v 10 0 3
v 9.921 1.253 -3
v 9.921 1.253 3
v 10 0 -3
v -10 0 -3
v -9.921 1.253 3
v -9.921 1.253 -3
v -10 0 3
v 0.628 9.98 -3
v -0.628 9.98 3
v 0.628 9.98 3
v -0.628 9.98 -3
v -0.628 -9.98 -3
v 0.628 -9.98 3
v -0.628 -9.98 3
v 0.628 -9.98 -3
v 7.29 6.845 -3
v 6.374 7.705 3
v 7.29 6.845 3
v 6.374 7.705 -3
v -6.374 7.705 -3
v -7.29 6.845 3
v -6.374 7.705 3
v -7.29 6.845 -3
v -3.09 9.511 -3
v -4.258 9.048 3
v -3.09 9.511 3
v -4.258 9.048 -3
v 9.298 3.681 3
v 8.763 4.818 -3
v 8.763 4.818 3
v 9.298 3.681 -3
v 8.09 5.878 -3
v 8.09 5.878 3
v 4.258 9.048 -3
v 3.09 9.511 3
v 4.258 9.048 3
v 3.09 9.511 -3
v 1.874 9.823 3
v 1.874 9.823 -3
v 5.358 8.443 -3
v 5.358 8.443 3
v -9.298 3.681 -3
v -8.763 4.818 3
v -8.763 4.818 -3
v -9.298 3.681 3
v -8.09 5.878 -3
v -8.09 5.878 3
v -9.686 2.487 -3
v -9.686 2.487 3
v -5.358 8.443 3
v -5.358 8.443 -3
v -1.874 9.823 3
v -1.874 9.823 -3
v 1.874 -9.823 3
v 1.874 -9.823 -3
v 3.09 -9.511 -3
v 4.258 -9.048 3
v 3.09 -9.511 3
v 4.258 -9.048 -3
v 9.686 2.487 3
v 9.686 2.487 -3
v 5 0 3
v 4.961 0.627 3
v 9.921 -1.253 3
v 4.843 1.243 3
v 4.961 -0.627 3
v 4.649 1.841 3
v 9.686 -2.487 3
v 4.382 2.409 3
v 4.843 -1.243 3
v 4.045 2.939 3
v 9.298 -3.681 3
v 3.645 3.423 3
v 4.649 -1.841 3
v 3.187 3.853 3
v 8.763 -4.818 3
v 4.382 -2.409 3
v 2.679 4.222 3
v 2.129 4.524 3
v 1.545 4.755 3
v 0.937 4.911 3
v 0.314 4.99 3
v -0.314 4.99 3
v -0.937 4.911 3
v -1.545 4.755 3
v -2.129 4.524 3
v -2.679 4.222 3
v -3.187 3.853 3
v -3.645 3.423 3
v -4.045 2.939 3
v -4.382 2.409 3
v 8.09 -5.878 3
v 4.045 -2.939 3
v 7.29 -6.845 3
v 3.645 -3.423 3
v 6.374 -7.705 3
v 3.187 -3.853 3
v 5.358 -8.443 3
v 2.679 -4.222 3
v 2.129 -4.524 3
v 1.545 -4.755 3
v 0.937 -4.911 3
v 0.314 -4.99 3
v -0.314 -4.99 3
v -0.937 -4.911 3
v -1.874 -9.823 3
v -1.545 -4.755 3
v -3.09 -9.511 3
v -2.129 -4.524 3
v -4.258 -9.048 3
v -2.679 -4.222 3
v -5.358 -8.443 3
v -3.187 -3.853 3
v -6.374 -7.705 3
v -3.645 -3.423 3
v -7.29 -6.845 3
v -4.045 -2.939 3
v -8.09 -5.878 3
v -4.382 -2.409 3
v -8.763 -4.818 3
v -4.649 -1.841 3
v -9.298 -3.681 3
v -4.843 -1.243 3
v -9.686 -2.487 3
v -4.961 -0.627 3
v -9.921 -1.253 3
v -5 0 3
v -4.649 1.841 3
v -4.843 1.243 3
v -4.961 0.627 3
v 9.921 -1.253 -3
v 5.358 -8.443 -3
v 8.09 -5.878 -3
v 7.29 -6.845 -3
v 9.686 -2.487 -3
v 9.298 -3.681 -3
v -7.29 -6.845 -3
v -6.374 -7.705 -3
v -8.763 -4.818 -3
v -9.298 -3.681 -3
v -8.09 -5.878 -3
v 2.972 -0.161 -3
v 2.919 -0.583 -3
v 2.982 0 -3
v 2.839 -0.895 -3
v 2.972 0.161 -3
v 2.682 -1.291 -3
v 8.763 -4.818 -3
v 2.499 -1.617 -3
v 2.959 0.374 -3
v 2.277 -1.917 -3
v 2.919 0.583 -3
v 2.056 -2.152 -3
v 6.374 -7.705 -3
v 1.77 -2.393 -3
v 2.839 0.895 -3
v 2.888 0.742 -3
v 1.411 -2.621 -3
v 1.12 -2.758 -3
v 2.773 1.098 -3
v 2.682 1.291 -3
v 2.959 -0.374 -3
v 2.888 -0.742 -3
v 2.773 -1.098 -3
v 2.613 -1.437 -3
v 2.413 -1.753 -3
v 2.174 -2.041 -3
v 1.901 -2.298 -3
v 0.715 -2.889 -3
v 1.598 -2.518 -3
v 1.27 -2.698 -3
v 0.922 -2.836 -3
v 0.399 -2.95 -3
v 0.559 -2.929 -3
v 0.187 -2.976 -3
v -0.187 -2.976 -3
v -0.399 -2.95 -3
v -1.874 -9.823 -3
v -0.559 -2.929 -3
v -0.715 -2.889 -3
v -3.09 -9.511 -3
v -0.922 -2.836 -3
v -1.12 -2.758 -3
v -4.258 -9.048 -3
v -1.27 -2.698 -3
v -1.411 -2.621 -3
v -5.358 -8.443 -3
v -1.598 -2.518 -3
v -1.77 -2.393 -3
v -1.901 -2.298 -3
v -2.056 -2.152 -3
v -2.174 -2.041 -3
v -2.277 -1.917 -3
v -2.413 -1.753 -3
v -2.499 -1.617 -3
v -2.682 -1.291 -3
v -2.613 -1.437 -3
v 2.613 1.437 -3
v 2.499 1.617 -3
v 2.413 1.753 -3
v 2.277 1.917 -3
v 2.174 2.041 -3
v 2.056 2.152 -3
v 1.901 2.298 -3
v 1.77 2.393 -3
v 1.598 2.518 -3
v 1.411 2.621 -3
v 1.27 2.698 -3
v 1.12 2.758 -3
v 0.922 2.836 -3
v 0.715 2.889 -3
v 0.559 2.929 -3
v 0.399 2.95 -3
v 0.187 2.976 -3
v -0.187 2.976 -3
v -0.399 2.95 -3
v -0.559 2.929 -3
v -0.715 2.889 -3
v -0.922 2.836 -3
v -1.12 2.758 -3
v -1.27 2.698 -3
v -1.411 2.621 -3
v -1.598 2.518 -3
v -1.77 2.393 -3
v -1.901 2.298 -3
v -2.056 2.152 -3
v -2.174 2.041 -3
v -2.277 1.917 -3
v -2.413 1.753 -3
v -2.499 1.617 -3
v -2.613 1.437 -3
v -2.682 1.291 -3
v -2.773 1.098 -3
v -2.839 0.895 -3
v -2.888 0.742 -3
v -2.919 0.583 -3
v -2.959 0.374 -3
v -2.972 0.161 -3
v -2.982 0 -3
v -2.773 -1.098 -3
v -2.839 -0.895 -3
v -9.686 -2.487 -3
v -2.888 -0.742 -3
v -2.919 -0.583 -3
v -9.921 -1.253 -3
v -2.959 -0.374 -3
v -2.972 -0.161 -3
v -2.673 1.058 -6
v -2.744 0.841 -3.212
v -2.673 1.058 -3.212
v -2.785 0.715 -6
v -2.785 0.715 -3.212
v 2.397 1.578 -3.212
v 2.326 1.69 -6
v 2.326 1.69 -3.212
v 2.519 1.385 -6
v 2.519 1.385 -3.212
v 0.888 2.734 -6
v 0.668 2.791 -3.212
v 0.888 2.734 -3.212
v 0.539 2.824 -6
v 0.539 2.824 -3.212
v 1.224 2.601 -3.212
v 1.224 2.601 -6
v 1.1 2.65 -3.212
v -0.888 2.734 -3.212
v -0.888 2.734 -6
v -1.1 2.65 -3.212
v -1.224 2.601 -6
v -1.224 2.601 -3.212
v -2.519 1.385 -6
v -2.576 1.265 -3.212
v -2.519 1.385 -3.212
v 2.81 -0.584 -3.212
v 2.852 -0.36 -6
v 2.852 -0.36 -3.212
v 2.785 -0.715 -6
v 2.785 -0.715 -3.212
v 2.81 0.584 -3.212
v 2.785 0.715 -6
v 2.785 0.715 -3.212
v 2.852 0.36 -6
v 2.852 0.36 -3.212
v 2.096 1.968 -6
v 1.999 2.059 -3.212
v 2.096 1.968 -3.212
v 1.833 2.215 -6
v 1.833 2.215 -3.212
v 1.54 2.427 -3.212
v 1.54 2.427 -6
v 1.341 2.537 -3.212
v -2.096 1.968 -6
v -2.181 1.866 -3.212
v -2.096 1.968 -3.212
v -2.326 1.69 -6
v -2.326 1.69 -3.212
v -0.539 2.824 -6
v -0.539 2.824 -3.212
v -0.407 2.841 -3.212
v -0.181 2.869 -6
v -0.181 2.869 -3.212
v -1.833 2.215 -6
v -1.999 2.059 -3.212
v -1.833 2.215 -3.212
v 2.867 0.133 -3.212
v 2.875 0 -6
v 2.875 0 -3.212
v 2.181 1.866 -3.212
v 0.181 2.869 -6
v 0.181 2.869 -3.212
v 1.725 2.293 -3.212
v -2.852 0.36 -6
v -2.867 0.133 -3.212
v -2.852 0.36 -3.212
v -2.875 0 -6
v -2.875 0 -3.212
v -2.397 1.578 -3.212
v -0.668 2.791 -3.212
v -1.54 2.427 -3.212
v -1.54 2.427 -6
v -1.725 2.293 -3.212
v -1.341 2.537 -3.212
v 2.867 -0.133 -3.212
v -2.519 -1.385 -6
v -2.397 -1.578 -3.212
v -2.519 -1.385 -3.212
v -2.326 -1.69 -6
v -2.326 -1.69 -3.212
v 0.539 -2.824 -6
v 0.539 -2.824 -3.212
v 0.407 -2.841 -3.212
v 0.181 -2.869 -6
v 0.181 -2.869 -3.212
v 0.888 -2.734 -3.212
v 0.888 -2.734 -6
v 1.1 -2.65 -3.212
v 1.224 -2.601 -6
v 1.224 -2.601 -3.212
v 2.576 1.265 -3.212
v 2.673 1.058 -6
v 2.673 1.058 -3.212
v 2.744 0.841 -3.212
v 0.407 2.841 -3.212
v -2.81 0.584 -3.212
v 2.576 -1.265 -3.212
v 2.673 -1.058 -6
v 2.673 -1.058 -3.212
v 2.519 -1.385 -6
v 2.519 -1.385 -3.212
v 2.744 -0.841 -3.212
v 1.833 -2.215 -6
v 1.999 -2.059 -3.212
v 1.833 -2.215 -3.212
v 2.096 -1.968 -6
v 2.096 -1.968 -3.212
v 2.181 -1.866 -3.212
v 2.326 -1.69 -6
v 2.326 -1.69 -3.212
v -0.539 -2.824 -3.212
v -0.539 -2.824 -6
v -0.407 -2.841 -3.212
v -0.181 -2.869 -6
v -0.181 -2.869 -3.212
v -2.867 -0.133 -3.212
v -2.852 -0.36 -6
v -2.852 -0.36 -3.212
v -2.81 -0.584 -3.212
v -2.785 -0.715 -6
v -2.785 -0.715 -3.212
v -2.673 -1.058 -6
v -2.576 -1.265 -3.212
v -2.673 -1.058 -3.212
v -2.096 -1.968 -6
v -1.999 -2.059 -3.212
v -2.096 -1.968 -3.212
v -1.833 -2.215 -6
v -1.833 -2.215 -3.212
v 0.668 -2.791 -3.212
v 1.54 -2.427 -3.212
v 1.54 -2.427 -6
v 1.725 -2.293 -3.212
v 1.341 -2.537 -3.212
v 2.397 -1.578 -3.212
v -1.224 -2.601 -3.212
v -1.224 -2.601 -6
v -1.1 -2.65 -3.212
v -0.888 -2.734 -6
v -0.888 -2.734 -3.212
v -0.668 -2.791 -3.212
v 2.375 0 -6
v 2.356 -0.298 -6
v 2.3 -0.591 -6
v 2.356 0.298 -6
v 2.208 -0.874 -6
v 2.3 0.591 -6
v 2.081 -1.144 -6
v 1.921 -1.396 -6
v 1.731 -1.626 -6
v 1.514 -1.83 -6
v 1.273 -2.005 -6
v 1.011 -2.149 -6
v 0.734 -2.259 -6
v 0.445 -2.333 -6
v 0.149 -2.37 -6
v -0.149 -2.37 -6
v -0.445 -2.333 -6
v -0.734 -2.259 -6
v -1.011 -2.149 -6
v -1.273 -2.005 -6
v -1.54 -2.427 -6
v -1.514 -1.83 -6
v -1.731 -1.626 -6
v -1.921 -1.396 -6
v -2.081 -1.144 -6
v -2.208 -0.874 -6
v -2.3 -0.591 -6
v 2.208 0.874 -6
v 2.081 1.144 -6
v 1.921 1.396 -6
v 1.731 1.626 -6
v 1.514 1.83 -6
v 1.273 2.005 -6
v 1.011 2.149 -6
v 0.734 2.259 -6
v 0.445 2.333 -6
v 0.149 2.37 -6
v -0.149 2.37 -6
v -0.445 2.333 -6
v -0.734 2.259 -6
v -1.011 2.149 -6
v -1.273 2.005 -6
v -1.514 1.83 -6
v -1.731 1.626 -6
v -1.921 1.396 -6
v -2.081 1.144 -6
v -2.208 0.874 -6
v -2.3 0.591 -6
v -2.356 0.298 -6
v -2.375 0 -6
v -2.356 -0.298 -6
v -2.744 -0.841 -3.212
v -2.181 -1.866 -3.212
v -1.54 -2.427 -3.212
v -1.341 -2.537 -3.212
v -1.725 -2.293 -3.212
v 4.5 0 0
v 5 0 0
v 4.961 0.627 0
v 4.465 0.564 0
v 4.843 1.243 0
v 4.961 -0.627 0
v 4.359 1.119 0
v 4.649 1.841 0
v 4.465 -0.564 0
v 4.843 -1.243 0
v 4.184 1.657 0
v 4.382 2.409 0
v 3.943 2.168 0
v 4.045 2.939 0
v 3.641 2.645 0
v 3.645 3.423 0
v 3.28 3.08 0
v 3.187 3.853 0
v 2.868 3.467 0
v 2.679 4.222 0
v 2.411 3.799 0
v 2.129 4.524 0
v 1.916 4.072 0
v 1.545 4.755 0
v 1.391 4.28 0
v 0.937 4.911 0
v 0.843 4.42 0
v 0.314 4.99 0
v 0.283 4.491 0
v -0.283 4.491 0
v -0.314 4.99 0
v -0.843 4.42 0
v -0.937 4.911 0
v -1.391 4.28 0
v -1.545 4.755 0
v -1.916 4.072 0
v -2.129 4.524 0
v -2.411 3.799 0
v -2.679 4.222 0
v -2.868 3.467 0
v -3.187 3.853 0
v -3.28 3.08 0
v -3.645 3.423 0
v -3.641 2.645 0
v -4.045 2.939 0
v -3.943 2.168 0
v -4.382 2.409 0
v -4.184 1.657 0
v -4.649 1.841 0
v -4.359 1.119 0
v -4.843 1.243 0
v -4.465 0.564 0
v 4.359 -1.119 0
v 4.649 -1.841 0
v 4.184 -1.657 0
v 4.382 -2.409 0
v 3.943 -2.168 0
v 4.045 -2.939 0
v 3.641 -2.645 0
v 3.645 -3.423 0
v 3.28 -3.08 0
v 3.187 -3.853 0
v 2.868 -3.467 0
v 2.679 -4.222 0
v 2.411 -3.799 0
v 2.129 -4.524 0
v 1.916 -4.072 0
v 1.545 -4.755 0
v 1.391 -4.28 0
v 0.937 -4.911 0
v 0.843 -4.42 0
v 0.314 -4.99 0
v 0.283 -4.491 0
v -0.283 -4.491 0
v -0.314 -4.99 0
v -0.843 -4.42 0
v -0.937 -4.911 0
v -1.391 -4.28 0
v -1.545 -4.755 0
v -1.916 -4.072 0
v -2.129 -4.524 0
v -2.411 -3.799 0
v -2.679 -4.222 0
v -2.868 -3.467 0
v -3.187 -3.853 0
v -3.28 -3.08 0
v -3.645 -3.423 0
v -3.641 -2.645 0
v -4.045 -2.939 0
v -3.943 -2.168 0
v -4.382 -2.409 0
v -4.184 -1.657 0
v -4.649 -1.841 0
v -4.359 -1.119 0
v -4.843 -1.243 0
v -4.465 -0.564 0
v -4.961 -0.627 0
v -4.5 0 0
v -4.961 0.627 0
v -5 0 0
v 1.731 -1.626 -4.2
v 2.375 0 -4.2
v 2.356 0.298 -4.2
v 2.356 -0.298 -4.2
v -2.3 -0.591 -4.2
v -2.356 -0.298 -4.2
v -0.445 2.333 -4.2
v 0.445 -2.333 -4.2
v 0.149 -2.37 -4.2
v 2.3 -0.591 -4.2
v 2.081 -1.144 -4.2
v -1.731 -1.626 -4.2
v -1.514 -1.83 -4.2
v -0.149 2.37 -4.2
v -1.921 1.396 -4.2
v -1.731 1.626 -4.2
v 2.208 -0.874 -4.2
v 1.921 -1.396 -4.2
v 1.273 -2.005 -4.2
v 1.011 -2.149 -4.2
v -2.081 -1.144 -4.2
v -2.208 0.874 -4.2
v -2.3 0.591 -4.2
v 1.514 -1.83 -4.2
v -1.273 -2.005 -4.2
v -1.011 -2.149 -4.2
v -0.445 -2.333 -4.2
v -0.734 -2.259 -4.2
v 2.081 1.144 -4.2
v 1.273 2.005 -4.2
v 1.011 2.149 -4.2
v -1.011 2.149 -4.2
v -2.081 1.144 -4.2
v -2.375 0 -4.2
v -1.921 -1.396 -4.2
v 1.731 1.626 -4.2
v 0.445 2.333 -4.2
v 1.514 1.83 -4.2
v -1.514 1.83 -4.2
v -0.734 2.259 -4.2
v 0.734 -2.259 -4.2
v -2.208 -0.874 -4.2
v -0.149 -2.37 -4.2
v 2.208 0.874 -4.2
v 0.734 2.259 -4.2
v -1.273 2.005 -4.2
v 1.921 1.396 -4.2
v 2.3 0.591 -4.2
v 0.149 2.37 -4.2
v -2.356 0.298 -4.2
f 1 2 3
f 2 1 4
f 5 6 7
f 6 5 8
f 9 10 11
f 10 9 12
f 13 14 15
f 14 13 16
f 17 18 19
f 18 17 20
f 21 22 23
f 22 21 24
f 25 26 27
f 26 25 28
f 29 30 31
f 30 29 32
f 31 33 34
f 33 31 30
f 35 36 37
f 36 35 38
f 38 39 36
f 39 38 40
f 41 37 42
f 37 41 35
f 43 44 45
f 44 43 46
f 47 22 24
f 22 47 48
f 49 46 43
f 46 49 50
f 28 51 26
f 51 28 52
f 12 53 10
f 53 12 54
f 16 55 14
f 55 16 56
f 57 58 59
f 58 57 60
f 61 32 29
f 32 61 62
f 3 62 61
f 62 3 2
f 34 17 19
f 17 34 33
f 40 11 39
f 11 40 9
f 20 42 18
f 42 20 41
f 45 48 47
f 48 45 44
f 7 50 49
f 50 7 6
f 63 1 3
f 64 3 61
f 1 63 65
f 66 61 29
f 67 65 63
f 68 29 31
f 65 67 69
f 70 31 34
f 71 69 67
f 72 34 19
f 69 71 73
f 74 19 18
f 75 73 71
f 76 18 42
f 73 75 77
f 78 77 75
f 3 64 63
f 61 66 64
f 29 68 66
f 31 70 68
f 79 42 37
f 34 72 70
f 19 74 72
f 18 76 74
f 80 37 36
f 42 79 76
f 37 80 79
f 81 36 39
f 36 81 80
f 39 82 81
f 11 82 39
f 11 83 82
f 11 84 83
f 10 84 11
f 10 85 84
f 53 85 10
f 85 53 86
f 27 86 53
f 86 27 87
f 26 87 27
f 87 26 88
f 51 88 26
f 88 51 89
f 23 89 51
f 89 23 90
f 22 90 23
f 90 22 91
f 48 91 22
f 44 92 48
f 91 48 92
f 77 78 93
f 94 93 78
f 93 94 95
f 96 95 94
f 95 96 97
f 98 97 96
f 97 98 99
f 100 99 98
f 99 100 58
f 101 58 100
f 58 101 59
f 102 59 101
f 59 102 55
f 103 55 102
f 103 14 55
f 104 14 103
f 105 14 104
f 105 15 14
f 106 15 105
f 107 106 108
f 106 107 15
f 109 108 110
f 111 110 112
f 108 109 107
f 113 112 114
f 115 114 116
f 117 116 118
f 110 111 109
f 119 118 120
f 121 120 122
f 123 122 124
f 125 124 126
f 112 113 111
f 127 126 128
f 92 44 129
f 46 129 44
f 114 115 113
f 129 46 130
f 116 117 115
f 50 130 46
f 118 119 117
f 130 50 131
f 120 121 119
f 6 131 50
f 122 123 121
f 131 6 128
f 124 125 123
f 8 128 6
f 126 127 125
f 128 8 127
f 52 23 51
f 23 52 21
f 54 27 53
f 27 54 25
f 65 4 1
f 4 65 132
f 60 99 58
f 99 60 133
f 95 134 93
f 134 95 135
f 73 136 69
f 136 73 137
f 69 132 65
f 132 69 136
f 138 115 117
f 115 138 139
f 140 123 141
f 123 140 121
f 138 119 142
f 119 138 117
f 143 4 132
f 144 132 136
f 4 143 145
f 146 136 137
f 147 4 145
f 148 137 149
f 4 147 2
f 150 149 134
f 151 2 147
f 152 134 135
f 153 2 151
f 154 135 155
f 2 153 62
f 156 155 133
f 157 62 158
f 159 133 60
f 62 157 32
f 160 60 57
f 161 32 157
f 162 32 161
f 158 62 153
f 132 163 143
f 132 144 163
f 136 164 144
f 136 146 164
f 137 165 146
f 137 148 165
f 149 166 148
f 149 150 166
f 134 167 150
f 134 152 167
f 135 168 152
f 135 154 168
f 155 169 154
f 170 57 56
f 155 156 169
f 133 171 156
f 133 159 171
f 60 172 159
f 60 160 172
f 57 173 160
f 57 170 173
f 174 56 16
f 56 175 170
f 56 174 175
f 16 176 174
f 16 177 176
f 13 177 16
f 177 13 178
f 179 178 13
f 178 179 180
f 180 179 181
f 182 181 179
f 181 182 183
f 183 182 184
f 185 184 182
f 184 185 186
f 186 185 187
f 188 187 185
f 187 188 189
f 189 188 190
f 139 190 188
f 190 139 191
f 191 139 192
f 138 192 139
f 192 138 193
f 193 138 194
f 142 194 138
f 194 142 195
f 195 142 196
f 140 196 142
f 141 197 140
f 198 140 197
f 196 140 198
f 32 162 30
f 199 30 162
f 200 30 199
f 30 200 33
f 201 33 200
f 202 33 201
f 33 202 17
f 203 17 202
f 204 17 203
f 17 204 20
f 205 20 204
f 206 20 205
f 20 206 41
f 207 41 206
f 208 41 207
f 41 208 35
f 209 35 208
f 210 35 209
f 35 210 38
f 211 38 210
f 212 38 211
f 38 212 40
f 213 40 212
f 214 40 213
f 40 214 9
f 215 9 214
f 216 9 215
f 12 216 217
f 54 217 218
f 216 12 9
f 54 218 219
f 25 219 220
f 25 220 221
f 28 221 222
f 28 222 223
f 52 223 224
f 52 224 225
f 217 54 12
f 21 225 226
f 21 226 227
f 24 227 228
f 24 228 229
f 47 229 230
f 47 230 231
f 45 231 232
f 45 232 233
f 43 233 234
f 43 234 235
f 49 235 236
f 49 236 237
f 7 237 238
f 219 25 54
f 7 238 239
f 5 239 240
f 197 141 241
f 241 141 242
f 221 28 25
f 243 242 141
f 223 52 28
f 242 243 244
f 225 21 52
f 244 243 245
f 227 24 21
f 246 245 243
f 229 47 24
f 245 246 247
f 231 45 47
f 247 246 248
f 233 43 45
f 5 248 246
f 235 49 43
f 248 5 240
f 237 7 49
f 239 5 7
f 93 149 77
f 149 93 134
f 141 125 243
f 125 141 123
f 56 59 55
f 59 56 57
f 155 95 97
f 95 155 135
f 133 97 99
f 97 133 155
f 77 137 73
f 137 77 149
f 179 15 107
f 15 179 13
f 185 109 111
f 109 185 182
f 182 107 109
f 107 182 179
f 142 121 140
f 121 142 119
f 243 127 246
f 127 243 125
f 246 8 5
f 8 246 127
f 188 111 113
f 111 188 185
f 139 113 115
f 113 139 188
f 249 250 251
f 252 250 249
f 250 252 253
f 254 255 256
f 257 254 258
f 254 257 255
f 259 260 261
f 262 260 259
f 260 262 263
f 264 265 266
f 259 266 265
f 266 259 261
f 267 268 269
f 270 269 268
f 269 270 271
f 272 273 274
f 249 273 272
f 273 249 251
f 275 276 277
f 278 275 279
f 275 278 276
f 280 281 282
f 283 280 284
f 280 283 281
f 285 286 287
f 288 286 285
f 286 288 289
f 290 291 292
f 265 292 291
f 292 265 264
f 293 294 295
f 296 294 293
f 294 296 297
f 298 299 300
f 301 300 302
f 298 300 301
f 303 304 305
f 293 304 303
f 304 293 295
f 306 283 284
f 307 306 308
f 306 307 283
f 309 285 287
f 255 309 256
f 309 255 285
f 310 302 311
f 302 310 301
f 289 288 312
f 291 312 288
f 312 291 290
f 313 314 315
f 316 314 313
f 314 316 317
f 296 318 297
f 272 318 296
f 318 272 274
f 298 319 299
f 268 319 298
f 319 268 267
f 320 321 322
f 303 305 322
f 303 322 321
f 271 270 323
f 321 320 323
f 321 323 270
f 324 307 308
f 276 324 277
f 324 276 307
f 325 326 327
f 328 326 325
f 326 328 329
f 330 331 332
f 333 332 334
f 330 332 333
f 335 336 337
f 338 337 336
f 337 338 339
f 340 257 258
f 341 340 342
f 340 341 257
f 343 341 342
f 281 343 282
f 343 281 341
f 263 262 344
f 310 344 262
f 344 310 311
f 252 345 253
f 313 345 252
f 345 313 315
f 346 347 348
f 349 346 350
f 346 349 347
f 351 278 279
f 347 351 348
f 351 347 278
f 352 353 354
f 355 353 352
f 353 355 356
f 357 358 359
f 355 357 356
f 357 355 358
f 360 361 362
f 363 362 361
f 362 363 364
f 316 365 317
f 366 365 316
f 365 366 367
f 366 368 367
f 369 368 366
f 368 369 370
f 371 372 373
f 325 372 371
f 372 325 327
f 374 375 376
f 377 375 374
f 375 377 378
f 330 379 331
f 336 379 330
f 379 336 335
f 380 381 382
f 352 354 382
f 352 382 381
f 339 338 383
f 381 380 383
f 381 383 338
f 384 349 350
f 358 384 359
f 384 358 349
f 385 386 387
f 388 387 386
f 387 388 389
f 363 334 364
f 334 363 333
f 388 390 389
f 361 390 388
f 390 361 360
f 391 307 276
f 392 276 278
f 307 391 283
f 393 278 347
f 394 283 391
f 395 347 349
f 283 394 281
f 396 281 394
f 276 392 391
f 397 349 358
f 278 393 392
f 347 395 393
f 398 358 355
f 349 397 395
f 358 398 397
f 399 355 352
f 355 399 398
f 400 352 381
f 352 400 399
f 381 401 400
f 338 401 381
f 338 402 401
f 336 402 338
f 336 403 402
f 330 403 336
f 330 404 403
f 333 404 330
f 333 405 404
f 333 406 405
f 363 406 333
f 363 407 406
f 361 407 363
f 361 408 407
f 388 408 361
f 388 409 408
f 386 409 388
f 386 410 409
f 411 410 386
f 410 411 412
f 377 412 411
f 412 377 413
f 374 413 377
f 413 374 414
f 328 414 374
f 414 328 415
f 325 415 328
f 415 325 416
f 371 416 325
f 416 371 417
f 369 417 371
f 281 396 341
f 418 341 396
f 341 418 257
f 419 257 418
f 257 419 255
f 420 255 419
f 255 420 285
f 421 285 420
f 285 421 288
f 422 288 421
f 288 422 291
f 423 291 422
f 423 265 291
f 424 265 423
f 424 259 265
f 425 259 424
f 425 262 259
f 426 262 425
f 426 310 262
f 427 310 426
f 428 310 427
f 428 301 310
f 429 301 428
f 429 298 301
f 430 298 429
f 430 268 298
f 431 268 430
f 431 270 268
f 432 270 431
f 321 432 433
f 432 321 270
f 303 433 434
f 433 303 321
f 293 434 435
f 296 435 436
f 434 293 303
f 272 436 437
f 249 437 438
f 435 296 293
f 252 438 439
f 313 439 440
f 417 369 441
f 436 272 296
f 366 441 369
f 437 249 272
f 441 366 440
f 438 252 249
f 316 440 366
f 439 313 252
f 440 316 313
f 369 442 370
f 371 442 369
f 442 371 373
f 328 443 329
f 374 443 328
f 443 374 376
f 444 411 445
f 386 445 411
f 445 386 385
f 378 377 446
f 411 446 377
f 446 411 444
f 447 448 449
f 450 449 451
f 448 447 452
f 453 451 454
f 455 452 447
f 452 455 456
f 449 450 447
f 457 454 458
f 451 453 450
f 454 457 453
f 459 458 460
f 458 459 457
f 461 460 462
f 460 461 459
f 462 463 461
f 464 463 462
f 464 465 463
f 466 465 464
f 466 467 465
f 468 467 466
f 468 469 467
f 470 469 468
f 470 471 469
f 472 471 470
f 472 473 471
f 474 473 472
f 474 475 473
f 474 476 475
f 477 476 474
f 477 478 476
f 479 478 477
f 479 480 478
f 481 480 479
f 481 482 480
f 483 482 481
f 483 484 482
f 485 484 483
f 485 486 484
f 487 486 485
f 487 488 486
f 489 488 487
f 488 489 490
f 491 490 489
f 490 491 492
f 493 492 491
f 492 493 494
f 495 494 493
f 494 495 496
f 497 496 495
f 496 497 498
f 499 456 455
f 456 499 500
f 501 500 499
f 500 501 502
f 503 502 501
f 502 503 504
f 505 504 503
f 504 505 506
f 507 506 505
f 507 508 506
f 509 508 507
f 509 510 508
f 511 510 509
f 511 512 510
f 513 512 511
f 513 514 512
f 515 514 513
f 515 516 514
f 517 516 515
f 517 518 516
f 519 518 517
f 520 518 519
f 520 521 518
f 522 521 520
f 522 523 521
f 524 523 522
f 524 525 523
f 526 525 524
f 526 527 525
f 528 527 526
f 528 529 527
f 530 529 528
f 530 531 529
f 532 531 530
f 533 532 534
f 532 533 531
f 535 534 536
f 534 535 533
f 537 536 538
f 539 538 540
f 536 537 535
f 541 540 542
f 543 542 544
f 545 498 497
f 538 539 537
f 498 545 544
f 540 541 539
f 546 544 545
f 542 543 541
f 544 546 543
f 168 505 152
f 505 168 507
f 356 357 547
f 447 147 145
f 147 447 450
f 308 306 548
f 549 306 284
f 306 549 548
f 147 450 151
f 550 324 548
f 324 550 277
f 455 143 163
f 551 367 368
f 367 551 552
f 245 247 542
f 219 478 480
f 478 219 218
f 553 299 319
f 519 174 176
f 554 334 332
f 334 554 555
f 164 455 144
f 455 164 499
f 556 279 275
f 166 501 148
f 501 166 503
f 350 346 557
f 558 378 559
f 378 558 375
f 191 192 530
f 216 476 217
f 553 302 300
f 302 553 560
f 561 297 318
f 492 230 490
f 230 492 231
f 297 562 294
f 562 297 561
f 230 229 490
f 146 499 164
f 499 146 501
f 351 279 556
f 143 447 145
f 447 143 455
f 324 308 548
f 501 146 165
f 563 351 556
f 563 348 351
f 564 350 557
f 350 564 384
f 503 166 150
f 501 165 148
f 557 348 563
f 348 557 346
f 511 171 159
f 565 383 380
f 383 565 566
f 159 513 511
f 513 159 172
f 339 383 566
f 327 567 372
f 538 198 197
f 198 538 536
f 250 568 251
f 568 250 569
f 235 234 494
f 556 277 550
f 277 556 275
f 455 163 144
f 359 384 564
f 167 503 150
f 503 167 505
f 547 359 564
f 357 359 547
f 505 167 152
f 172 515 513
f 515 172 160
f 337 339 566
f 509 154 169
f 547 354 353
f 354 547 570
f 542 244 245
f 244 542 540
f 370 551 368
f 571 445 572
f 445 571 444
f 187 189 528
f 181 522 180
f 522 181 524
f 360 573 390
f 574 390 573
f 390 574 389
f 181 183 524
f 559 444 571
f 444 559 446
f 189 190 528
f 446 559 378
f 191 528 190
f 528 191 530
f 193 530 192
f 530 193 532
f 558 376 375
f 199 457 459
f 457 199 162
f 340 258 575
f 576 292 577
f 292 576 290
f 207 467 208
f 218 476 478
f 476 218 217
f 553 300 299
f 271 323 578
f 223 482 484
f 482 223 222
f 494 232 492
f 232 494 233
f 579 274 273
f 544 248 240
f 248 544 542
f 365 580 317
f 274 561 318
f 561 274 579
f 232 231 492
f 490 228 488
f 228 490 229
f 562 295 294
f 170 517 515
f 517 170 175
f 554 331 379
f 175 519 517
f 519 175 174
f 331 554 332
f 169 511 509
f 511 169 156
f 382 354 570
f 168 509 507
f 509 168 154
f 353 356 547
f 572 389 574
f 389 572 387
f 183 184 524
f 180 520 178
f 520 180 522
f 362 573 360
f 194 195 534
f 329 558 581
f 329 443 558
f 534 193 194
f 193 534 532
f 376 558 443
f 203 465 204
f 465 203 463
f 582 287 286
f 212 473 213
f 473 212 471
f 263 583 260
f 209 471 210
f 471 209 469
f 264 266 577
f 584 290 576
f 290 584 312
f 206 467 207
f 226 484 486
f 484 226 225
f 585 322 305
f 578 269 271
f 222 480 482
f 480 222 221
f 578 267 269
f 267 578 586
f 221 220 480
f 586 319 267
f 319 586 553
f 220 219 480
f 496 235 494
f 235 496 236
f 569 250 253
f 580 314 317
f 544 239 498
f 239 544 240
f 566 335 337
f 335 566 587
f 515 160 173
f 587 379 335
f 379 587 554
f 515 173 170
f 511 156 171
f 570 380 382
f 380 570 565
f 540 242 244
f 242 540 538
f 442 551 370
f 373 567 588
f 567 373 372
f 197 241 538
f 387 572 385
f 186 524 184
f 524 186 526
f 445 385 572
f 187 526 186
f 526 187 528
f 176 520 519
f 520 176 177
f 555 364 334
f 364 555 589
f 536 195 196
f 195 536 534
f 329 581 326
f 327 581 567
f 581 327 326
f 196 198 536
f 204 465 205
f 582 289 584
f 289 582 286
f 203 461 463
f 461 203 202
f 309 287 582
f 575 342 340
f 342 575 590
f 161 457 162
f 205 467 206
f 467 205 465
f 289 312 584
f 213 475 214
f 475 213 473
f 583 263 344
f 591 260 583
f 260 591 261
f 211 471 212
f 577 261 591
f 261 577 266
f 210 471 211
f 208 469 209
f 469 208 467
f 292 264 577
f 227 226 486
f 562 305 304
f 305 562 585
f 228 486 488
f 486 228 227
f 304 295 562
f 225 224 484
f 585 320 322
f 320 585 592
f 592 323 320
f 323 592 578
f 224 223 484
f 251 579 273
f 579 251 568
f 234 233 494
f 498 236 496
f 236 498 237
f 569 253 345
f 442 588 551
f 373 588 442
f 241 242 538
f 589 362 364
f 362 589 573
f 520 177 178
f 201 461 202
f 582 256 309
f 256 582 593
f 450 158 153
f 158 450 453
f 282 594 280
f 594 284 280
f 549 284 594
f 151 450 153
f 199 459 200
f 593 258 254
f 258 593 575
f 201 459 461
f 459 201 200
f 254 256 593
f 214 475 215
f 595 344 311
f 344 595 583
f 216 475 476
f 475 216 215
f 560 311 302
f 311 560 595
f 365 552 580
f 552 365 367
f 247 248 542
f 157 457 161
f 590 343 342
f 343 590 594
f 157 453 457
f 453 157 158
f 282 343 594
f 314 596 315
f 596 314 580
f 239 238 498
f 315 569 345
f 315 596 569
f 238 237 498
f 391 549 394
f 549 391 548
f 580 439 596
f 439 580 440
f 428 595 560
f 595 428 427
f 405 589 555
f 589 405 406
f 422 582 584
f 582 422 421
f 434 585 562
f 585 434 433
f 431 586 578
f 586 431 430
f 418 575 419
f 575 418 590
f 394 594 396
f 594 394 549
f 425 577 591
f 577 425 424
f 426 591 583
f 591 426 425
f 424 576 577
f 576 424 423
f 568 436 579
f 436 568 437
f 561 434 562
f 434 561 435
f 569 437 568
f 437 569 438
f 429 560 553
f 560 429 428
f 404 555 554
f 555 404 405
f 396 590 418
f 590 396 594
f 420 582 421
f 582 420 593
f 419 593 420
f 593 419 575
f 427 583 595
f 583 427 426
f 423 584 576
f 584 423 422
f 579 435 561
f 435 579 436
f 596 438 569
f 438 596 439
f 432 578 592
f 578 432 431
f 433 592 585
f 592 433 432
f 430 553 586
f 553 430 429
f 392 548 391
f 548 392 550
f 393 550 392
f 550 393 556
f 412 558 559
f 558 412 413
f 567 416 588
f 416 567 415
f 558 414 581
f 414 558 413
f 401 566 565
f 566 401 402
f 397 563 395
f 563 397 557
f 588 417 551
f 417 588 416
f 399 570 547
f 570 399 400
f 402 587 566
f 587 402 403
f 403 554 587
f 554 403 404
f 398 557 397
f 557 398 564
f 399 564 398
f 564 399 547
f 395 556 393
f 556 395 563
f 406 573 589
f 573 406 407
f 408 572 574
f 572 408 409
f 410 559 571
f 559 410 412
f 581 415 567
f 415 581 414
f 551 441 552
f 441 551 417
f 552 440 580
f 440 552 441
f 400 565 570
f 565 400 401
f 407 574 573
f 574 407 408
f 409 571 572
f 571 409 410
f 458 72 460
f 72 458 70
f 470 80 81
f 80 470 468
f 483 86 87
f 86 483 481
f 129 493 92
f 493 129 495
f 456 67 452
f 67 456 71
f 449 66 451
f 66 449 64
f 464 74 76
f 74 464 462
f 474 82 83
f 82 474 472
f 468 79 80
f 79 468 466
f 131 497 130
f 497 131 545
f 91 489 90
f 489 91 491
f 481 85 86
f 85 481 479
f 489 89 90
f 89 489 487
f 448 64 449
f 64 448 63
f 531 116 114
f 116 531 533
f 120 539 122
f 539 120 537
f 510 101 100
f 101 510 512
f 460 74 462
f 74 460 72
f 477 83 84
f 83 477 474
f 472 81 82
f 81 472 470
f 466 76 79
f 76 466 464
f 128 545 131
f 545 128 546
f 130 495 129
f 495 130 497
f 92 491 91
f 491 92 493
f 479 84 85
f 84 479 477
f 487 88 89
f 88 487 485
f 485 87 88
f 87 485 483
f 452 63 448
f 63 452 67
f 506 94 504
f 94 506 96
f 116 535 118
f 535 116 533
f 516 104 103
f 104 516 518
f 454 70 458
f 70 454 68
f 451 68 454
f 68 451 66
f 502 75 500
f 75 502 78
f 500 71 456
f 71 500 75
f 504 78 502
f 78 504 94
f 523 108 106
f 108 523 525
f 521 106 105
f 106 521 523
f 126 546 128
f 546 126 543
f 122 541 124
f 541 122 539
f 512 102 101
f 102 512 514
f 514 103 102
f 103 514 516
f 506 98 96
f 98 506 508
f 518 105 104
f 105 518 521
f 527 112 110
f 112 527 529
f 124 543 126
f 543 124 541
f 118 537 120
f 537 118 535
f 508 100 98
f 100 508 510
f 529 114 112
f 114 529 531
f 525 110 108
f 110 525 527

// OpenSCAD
$fn = 50;

difference() {
	union() {
		translate(v = [0, 0, -3.0]) {
			cylinder(h = 6, r = 10.0);
		}
		#translate(v = [0, 0, -6.0]) {
			cylinder(h = 6, r = 2.875);
		}
	}
	union() {
		translate(v = [0, 0, 0]) {
			rotate(a = [0, 0, 0]) {
				difference() {
					union() {
						translate(v = [0, 0, -6.0]) {
							cylinder(h = 6, r = 2.25);
						}
						translate(v = [0, 0, -4.2]) {
							cylinder(h = 4.2, r1 = 2.375, r2 = 4.5);
						}
						translate(v = [0, 0, -6.0]) {
							cylinder(h = 6, r = 2.375);
						}
						translate(v = [0, 0, -6.0]) {
							cylinder(h = 6, r = 2.25);
						}
					}
					union();
				}
			}
		}
		#cylinder(h = 3, r = 5.0);
	}
}
